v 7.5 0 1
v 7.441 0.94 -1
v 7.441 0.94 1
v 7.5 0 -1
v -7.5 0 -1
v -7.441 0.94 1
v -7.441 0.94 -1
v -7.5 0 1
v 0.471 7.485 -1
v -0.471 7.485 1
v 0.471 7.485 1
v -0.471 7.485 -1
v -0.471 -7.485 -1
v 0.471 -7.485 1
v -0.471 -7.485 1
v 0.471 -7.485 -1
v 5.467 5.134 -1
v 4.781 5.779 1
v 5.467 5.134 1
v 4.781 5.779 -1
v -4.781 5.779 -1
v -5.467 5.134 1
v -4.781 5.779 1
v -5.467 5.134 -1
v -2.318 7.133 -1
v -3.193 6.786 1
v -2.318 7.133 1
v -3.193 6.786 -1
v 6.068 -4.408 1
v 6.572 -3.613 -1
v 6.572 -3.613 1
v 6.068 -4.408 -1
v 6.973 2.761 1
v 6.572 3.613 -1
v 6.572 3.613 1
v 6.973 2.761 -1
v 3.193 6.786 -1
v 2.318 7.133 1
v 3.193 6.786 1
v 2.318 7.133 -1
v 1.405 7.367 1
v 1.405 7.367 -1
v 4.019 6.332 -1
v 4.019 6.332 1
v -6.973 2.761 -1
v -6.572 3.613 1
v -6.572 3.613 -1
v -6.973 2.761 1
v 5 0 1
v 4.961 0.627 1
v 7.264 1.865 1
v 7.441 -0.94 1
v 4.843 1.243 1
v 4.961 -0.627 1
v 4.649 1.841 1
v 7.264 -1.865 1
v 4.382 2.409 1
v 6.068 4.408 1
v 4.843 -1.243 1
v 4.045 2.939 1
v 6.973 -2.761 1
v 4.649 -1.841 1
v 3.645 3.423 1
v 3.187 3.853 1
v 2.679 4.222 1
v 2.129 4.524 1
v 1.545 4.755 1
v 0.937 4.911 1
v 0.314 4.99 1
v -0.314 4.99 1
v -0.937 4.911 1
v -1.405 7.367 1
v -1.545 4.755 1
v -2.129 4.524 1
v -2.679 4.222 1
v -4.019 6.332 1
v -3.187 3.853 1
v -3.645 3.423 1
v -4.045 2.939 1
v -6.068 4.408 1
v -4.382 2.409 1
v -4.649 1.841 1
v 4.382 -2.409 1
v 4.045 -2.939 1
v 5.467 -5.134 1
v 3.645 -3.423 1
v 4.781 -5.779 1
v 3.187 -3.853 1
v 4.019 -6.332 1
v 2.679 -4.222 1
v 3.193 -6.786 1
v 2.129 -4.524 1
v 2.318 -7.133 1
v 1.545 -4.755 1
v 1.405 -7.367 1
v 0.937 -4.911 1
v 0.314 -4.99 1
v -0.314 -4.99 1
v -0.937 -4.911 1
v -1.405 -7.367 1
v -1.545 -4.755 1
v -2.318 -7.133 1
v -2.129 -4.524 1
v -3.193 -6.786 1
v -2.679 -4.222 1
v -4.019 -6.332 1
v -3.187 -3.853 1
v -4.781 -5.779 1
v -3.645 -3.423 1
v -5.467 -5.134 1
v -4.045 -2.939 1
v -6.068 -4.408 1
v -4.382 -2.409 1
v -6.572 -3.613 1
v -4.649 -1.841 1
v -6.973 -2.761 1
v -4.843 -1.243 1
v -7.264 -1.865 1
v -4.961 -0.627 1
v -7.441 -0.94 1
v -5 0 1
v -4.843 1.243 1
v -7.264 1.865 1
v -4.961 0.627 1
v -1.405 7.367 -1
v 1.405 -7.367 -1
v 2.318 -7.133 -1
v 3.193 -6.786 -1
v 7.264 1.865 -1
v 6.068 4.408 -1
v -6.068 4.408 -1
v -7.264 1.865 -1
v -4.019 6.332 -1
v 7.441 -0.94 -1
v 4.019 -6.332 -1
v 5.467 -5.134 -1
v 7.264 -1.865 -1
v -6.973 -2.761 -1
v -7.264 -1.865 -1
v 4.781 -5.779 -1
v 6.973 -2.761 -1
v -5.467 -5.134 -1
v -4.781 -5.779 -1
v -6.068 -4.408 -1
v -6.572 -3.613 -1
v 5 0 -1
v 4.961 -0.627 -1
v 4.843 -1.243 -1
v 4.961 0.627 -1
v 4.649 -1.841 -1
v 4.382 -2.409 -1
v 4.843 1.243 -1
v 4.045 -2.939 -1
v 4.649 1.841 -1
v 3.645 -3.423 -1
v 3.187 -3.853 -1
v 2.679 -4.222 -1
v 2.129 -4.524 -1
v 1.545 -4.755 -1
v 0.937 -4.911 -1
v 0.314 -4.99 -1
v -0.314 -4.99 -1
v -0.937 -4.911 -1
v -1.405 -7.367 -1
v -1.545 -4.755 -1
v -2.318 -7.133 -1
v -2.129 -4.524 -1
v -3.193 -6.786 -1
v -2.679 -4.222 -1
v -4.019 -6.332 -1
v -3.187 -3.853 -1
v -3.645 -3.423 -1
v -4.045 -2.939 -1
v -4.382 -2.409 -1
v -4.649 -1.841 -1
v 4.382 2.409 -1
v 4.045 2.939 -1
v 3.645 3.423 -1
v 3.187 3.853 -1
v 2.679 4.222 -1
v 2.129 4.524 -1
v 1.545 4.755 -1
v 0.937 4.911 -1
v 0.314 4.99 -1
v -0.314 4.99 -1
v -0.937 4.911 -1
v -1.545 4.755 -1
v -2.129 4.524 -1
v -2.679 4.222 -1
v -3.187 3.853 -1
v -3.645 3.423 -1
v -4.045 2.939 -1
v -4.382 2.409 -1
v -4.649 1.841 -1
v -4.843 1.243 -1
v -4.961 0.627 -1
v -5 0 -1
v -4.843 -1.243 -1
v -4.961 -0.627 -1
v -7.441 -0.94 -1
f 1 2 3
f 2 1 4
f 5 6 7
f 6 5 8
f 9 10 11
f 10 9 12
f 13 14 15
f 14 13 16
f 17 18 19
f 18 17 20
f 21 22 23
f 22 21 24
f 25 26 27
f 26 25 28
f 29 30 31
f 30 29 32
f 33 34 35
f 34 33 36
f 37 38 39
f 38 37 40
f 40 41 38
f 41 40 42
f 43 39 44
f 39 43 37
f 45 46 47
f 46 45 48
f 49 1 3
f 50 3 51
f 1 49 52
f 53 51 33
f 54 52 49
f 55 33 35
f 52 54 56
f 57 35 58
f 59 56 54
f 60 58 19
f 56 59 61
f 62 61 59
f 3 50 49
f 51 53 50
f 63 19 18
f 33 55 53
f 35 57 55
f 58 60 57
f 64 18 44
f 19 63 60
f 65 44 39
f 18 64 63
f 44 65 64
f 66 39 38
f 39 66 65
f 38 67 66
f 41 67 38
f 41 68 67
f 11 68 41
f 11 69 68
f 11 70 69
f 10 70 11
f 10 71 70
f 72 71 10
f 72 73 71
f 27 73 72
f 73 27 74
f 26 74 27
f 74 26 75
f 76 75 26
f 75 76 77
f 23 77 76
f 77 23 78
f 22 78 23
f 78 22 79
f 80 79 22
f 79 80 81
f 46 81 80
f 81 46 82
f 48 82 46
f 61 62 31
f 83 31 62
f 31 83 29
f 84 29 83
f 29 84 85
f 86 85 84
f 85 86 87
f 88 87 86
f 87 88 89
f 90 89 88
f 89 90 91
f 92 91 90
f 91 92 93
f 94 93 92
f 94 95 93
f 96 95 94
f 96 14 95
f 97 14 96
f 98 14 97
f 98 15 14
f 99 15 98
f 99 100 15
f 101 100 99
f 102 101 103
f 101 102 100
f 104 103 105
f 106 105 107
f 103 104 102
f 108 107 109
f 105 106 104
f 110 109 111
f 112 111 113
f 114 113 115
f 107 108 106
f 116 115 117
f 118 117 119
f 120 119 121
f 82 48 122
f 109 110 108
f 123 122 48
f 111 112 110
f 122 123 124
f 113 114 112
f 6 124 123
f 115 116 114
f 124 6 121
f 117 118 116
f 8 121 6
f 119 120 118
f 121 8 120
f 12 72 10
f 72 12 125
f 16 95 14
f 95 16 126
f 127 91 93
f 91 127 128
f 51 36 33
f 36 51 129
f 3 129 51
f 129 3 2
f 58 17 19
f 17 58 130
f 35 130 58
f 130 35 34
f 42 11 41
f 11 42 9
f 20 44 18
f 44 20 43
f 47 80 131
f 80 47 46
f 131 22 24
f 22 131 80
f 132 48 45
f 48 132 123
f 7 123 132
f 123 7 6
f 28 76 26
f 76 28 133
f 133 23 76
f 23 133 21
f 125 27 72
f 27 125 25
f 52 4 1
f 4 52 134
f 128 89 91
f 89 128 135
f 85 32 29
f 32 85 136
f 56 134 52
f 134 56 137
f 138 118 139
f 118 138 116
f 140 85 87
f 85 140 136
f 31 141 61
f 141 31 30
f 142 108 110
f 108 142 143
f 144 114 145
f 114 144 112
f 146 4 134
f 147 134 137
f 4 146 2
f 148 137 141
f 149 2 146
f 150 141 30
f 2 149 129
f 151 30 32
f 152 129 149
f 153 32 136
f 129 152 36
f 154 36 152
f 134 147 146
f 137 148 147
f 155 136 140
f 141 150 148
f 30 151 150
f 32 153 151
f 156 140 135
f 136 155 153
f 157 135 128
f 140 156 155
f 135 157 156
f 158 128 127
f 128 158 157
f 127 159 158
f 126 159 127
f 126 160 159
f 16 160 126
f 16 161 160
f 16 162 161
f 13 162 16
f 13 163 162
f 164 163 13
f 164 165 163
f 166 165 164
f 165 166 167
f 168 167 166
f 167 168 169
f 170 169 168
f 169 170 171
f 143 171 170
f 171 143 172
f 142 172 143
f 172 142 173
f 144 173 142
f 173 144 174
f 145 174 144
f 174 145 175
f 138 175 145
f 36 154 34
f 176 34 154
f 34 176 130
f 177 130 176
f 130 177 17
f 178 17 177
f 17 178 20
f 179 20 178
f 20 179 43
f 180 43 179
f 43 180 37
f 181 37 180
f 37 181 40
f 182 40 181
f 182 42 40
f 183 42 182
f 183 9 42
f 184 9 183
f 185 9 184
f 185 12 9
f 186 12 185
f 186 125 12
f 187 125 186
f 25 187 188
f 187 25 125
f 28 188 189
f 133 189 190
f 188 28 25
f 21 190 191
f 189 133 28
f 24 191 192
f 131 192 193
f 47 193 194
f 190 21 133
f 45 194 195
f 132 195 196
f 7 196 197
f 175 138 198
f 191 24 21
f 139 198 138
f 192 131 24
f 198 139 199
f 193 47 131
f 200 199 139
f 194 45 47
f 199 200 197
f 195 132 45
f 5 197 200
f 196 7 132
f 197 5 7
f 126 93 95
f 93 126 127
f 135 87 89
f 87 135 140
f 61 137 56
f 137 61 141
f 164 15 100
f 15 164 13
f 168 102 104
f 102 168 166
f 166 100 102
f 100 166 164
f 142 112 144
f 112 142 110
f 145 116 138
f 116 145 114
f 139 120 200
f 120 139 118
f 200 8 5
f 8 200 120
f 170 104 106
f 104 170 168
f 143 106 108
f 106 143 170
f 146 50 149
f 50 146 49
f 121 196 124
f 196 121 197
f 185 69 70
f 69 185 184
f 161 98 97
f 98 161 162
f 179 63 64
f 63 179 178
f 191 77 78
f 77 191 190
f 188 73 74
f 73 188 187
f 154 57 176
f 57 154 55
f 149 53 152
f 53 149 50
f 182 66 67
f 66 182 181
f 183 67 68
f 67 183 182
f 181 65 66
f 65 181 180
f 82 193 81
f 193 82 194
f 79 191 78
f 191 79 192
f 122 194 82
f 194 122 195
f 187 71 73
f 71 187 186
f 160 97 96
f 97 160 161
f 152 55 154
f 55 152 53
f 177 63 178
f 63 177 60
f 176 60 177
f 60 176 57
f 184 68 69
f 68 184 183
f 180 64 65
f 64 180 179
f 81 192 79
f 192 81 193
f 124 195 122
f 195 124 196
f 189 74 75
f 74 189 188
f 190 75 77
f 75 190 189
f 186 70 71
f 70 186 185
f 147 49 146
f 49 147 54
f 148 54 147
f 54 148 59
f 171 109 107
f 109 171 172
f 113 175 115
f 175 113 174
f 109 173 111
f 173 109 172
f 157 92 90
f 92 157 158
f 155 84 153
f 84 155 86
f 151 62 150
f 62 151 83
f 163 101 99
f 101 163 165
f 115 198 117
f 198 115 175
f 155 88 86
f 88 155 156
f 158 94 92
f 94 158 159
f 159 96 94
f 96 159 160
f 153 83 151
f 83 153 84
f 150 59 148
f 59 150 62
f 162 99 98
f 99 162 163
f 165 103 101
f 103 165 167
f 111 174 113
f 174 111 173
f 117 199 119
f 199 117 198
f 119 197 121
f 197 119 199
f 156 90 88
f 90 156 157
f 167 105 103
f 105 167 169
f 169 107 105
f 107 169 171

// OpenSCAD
$fn = 50;


difference() {
	union() {
		translate(v = [0, 0, -1.0000000000]) {
			cylinder(h = 2, r = 7.5000000000);
		}
	}
	union() {
		translate(v = [0, 0, -100.0000000000]) {
			cylinder(h = 200, r = 5.0000000000);
		}
	}
}
